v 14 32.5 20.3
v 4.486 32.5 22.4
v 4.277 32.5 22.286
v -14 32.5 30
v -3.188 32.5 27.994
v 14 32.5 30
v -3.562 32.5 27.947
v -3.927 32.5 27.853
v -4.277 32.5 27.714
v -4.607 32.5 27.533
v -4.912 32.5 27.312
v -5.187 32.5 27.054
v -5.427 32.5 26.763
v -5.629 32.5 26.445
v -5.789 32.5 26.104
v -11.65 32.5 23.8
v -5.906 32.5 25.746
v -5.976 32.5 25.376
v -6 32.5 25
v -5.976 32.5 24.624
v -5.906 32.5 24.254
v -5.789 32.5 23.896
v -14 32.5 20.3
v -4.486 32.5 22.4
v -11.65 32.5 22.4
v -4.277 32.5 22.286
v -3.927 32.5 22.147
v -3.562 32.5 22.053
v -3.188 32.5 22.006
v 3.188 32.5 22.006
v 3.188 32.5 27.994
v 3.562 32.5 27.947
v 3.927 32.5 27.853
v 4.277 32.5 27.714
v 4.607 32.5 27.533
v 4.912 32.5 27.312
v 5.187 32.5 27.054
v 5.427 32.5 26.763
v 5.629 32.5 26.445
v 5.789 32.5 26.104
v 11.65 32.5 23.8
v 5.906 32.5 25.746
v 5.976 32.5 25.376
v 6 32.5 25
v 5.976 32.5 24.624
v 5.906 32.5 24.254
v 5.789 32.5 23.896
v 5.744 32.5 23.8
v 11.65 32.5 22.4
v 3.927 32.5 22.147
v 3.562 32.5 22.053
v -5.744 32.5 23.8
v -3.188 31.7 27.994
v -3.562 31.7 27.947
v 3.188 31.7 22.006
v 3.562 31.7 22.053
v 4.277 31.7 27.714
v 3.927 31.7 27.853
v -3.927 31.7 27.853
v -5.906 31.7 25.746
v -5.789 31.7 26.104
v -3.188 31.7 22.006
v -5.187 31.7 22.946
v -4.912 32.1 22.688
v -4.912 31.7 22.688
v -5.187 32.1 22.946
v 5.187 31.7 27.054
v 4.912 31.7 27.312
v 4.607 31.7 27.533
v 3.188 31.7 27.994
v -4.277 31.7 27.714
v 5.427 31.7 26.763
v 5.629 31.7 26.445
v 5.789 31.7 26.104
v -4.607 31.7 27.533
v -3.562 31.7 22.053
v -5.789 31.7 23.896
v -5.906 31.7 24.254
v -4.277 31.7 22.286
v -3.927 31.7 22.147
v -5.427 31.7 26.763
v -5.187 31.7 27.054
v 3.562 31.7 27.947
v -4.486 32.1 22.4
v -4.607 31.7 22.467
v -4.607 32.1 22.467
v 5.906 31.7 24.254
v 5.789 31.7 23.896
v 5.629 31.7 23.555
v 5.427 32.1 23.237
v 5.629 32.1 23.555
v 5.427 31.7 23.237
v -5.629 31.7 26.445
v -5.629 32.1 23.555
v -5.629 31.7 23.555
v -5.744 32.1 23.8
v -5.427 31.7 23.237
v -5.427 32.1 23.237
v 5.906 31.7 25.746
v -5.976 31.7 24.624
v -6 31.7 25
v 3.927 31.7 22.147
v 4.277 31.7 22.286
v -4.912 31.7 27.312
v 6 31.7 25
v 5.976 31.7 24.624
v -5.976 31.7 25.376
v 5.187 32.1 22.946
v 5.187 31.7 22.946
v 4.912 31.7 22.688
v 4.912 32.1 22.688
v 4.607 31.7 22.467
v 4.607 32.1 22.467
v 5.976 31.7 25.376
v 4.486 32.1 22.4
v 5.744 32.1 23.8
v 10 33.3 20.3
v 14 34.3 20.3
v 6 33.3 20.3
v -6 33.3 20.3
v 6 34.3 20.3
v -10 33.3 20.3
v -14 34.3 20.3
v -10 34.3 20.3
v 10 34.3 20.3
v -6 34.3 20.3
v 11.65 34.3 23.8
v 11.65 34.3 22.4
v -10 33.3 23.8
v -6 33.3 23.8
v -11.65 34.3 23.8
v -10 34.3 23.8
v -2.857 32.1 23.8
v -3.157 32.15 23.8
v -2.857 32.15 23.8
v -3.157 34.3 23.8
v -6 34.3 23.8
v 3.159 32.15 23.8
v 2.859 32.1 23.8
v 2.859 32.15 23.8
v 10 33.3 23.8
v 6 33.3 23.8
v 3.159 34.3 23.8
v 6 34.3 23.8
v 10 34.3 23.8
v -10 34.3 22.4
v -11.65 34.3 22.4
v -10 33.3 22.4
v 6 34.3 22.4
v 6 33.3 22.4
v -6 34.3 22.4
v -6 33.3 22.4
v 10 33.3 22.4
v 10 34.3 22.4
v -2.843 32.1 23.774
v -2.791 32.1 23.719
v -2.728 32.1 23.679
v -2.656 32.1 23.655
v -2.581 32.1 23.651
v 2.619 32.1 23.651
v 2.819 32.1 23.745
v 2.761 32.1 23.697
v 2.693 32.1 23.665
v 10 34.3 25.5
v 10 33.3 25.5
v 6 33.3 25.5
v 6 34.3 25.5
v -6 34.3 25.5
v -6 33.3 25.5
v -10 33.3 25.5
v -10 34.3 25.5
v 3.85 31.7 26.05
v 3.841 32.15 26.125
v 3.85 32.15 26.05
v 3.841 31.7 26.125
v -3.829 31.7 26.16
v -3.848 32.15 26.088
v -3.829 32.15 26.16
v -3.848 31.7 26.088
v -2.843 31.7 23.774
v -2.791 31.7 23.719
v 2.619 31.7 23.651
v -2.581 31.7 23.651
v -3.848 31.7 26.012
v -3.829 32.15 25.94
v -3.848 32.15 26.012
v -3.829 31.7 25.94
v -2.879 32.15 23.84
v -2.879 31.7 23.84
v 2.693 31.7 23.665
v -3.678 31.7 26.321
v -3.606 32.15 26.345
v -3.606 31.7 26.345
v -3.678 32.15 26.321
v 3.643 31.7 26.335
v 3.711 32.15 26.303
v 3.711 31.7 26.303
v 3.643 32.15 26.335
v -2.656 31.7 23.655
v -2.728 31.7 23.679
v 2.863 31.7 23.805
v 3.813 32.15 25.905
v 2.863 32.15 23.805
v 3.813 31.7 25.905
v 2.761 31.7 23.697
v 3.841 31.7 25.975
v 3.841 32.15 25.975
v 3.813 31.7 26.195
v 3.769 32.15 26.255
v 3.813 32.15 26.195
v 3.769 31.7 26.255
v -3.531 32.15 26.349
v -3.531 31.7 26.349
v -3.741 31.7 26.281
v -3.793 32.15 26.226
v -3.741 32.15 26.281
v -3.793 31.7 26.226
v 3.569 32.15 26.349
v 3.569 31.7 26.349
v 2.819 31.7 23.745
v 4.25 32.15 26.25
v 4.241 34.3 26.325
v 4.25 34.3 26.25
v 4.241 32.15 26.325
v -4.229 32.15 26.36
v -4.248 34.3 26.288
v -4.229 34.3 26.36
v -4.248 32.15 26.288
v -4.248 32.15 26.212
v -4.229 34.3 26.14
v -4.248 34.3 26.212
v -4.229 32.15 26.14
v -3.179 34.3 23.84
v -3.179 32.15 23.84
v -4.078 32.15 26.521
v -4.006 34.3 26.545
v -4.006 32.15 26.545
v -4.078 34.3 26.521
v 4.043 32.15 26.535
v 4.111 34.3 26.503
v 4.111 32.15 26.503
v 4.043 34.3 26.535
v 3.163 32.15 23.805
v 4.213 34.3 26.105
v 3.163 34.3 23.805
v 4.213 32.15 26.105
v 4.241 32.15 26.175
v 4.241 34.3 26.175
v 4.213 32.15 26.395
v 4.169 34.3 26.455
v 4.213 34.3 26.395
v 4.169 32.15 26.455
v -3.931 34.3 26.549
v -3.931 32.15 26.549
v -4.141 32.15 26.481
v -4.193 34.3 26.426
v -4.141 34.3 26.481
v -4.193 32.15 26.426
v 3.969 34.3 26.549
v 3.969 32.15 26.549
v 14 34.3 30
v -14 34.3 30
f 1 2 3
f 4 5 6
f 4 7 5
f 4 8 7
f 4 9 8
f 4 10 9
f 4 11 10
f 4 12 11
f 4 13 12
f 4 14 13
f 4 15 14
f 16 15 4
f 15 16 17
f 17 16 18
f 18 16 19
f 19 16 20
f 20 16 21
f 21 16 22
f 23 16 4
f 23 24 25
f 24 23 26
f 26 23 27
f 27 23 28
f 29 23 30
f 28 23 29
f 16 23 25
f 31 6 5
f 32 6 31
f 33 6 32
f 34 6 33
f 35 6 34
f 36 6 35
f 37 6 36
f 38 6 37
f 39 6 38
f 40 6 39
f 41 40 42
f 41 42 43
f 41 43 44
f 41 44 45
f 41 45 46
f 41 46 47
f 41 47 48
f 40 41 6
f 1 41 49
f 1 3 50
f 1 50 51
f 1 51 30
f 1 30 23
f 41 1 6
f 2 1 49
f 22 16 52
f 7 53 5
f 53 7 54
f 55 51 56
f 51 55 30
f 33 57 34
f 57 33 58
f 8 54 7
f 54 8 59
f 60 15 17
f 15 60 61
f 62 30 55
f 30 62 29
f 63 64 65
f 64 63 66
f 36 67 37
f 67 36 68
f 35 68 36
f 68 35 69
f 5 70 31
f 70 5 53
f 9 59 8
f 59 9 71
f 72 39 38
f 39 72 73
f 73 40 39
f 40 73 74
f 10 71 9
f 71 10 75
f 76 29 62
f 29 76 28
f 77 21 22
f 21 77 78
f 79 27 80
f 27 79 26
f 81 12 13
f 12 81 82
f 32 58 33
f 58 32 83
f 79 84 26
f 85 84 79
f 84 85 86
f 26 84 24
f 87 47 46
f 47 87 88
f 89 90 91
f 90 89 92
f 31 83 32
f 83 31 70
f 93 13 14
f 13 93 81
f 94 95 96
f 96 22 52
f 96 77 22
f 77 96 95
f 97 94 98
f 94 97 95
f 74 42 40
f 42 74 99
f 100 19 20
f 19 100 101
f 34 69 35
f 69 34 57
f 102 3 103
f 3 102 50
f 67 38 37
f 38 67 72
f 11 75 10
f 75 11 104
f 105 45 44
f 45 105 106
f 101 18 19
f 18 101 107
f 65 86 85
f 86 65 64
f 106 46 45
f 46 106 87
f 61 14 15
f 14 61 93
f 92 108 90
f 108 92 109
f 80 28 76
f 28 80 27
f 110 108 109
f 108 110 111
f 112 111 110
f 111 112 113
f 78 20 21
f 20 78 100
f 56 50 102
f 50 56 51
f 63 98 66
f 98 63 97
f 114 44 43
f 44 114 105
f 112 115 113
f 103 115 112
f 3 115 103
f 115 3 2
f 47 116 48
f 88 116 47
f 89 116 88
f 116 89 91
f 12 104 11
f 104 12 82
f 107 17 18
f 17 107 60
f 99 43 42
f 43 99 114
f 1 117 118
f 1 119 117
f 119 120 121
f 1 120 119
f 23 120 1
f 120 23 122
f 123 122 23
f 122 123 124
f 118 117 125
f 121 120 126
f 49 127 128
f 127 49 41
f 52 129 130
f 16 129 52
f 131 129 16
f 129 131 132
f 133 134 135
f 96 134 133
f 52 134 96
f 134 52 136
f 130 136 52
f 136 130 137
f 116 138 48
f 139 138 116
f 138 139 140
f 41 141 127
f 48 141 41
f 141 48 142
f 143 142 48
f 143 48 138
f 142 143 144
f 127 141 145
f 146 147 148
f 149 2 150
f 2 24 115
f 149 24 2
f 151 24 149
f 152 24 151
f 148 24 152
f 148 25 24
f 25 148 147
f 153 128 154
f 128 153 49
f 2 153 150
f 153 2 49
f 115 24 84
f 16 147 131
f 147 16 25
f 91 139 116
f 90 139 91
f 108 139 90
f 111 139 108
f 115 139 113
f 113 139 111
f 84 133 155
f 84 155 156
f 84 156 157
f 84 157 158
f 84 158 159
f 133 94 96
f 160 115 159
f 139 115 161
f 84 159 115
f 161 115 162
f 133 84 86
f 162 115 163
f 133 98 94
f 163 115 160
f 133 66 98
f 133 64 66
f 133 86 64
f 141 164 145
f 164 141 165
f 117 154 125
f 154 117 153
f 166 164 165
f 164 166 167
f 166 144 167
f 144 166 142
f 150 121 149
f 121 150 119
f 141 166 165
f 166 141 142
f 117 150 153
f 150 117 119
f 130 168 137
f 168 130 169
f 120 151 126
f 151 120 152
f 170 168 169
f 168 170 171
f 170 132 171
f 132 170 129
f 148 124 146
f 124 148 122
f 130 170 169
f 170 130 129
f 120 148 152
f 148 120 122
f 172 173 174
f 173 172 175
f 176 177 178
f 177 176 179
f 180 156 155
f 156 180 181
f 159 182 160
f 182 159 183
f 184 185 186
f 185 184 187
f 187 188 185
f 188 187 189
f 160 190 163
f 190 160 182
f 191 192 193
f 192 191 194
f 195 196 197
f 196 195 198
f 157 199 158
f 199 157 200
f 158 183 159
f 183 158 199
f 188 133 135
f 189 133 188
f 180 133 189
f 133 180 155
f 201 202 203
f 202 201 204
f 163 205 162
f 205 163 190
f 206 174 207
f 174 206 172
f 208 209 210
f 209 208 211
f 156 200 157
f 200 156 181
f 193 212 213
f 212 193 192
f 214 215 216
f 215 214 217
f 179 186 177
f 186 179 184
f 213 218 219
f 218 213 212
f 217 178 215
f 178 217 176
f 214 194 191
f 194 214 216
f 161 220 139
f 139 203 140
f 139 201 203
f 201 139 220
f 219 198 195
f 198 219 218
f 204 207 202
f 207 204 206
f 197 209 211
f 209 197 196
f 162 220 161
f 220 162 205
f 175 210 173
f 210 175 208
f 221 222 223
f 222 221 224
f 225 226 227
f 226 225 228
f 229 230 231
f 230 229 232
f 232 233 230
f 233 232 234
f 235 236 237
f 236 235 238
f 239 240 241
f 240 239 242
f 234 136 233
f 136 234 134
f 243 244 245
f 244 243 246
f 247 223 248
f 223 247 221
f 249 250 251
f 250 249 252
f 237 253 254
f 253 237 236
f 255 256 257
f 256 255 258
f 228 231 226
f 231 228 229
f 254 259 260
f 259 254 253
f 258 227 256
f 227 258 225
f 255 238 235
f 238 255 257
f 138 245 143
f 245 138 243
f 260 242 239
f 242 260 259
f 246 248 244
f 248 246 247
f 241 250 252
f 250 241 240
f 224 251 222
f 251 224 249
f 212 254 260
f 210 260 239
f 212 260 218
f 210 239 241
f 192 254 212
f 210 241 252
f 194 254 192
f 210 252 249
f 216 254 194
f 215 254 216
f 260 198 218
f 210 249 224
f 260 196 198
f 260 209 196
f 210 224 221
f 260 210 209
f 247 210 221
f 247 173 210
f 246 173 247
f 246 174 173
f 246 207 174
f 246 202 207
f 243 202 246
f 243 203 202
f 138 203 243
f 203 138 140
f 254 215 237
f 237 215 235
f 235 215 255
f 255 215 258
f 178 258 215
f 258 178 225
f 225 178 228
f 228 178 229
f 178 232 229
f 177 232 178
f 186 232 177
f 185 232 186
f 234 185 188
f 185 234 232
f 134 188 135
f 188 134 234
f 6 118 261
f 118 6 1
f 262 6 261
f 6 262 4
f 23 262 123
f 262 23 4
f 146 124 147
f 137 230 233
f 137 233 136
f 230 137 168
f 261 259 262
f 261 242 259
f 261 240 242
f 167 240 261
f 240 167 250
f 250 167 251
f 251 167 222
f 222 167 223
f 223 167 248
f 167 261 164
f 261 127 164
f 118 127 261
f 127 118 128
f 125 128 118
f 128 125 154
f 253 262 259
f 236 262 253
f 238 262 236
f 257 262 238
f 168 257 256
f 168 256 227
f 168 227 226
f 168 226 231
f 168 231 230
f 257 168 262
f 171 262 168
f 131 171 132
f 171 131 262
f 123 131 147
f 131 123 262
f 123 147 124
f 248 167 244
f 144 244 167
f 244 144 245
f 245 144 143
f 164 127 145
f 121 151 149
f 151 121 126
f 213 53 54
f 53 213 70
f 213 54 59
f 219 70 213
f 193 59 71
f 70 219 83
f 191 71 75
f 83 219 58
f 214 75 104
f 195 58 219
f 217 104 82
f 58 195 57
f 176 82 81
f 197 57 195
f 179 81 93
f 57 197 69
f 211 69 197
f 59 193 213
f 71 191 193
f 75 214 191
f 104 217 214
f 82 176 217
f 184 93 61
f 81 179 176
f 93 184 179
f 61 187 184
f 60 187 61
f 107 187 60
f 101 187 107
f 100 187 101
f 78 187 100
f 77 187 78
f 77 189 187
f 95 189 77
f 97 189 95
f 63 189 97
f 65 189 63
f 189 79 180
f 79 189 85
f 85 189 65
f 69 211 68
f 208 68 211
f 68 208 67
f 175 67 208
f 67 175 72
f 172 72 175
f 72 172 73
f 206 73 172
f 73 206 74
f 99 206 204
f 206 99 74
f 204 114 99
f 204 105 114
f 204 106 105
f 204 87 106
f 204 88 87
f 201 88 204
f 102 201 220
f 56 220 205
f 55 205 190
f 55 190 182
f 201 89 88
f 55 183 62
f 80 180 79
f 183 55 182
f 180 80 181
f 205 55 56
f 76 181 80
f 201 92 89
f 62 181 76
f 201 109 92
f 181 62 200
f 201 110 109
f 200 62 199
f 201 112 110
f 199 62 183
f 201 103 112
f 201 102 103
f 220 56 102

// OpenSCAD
difference () {
  translate ([0, 33, 25]) {
    cube ([28, 2.6, 10], center=true);
  }
  union () {
    translate ([0, 66.5, 19.3]) {
      cube ([45, 70, 2], center=true);
    }
    translate ([0, 67.1, 23.1]) {
      cube ([23.3, 70, 1.4], center=true);
    }
    translate ([8, 35, 22]) {
      cube ([4, 3.4, 7], center=true);
    }
    translate ([-8, 35, 22]) {
      cube ([4, 3.4, 7], center=true);
    }
    difference () {
      translate ([0, 31.5, 25]) {
        cube ([50, 2, 50], center=true);
      }
      hull () {
        translate ([3, 31, 25]) {
          rotate (a=90.0, v=[1, 0, 0]) {
            cylinder ($fn=50, h=4, r=3, center=true);
          }
        }
        mirror ([1, 0, 0]) {
          translate ([3, 31, 25]) {
            rotate (a=90.0, v=[1, 0, 0]) {
              cylinder ($fn=50, h=4, r=3, center=true);
            }
          }
        }
      }
    }
    translate ([0, 23, 25]) {
      rotate (a=90.0, v=[-1, 0, 0]) {
        minkowski () {
          linear_extrude (height=20, center=true){
            polygon (points=[[-3.55, -1.05], [3.55, -1.05], [2.6, 1.05], [-2.6, 1.05]]);
          }
          cylinder ($fn=25, h=0.1, r=0.3, center=true);
        }
      }
    }
    translate ([0, 42.2, 25]) {
      rotate (a=90.0, v=[-1, 0, 0]) {
        minkowski () {
          linear_extrude (height=20, center=true){
            polygon (points=[[-3.95, -1.25], [3.95, -1.25], [2.9, 1.05], [-2.9, 1.05]]);
          }
          cylinder ($fn=25, h=0.1, r=0.3, center=true);
        }
      }
    }
  }
}
